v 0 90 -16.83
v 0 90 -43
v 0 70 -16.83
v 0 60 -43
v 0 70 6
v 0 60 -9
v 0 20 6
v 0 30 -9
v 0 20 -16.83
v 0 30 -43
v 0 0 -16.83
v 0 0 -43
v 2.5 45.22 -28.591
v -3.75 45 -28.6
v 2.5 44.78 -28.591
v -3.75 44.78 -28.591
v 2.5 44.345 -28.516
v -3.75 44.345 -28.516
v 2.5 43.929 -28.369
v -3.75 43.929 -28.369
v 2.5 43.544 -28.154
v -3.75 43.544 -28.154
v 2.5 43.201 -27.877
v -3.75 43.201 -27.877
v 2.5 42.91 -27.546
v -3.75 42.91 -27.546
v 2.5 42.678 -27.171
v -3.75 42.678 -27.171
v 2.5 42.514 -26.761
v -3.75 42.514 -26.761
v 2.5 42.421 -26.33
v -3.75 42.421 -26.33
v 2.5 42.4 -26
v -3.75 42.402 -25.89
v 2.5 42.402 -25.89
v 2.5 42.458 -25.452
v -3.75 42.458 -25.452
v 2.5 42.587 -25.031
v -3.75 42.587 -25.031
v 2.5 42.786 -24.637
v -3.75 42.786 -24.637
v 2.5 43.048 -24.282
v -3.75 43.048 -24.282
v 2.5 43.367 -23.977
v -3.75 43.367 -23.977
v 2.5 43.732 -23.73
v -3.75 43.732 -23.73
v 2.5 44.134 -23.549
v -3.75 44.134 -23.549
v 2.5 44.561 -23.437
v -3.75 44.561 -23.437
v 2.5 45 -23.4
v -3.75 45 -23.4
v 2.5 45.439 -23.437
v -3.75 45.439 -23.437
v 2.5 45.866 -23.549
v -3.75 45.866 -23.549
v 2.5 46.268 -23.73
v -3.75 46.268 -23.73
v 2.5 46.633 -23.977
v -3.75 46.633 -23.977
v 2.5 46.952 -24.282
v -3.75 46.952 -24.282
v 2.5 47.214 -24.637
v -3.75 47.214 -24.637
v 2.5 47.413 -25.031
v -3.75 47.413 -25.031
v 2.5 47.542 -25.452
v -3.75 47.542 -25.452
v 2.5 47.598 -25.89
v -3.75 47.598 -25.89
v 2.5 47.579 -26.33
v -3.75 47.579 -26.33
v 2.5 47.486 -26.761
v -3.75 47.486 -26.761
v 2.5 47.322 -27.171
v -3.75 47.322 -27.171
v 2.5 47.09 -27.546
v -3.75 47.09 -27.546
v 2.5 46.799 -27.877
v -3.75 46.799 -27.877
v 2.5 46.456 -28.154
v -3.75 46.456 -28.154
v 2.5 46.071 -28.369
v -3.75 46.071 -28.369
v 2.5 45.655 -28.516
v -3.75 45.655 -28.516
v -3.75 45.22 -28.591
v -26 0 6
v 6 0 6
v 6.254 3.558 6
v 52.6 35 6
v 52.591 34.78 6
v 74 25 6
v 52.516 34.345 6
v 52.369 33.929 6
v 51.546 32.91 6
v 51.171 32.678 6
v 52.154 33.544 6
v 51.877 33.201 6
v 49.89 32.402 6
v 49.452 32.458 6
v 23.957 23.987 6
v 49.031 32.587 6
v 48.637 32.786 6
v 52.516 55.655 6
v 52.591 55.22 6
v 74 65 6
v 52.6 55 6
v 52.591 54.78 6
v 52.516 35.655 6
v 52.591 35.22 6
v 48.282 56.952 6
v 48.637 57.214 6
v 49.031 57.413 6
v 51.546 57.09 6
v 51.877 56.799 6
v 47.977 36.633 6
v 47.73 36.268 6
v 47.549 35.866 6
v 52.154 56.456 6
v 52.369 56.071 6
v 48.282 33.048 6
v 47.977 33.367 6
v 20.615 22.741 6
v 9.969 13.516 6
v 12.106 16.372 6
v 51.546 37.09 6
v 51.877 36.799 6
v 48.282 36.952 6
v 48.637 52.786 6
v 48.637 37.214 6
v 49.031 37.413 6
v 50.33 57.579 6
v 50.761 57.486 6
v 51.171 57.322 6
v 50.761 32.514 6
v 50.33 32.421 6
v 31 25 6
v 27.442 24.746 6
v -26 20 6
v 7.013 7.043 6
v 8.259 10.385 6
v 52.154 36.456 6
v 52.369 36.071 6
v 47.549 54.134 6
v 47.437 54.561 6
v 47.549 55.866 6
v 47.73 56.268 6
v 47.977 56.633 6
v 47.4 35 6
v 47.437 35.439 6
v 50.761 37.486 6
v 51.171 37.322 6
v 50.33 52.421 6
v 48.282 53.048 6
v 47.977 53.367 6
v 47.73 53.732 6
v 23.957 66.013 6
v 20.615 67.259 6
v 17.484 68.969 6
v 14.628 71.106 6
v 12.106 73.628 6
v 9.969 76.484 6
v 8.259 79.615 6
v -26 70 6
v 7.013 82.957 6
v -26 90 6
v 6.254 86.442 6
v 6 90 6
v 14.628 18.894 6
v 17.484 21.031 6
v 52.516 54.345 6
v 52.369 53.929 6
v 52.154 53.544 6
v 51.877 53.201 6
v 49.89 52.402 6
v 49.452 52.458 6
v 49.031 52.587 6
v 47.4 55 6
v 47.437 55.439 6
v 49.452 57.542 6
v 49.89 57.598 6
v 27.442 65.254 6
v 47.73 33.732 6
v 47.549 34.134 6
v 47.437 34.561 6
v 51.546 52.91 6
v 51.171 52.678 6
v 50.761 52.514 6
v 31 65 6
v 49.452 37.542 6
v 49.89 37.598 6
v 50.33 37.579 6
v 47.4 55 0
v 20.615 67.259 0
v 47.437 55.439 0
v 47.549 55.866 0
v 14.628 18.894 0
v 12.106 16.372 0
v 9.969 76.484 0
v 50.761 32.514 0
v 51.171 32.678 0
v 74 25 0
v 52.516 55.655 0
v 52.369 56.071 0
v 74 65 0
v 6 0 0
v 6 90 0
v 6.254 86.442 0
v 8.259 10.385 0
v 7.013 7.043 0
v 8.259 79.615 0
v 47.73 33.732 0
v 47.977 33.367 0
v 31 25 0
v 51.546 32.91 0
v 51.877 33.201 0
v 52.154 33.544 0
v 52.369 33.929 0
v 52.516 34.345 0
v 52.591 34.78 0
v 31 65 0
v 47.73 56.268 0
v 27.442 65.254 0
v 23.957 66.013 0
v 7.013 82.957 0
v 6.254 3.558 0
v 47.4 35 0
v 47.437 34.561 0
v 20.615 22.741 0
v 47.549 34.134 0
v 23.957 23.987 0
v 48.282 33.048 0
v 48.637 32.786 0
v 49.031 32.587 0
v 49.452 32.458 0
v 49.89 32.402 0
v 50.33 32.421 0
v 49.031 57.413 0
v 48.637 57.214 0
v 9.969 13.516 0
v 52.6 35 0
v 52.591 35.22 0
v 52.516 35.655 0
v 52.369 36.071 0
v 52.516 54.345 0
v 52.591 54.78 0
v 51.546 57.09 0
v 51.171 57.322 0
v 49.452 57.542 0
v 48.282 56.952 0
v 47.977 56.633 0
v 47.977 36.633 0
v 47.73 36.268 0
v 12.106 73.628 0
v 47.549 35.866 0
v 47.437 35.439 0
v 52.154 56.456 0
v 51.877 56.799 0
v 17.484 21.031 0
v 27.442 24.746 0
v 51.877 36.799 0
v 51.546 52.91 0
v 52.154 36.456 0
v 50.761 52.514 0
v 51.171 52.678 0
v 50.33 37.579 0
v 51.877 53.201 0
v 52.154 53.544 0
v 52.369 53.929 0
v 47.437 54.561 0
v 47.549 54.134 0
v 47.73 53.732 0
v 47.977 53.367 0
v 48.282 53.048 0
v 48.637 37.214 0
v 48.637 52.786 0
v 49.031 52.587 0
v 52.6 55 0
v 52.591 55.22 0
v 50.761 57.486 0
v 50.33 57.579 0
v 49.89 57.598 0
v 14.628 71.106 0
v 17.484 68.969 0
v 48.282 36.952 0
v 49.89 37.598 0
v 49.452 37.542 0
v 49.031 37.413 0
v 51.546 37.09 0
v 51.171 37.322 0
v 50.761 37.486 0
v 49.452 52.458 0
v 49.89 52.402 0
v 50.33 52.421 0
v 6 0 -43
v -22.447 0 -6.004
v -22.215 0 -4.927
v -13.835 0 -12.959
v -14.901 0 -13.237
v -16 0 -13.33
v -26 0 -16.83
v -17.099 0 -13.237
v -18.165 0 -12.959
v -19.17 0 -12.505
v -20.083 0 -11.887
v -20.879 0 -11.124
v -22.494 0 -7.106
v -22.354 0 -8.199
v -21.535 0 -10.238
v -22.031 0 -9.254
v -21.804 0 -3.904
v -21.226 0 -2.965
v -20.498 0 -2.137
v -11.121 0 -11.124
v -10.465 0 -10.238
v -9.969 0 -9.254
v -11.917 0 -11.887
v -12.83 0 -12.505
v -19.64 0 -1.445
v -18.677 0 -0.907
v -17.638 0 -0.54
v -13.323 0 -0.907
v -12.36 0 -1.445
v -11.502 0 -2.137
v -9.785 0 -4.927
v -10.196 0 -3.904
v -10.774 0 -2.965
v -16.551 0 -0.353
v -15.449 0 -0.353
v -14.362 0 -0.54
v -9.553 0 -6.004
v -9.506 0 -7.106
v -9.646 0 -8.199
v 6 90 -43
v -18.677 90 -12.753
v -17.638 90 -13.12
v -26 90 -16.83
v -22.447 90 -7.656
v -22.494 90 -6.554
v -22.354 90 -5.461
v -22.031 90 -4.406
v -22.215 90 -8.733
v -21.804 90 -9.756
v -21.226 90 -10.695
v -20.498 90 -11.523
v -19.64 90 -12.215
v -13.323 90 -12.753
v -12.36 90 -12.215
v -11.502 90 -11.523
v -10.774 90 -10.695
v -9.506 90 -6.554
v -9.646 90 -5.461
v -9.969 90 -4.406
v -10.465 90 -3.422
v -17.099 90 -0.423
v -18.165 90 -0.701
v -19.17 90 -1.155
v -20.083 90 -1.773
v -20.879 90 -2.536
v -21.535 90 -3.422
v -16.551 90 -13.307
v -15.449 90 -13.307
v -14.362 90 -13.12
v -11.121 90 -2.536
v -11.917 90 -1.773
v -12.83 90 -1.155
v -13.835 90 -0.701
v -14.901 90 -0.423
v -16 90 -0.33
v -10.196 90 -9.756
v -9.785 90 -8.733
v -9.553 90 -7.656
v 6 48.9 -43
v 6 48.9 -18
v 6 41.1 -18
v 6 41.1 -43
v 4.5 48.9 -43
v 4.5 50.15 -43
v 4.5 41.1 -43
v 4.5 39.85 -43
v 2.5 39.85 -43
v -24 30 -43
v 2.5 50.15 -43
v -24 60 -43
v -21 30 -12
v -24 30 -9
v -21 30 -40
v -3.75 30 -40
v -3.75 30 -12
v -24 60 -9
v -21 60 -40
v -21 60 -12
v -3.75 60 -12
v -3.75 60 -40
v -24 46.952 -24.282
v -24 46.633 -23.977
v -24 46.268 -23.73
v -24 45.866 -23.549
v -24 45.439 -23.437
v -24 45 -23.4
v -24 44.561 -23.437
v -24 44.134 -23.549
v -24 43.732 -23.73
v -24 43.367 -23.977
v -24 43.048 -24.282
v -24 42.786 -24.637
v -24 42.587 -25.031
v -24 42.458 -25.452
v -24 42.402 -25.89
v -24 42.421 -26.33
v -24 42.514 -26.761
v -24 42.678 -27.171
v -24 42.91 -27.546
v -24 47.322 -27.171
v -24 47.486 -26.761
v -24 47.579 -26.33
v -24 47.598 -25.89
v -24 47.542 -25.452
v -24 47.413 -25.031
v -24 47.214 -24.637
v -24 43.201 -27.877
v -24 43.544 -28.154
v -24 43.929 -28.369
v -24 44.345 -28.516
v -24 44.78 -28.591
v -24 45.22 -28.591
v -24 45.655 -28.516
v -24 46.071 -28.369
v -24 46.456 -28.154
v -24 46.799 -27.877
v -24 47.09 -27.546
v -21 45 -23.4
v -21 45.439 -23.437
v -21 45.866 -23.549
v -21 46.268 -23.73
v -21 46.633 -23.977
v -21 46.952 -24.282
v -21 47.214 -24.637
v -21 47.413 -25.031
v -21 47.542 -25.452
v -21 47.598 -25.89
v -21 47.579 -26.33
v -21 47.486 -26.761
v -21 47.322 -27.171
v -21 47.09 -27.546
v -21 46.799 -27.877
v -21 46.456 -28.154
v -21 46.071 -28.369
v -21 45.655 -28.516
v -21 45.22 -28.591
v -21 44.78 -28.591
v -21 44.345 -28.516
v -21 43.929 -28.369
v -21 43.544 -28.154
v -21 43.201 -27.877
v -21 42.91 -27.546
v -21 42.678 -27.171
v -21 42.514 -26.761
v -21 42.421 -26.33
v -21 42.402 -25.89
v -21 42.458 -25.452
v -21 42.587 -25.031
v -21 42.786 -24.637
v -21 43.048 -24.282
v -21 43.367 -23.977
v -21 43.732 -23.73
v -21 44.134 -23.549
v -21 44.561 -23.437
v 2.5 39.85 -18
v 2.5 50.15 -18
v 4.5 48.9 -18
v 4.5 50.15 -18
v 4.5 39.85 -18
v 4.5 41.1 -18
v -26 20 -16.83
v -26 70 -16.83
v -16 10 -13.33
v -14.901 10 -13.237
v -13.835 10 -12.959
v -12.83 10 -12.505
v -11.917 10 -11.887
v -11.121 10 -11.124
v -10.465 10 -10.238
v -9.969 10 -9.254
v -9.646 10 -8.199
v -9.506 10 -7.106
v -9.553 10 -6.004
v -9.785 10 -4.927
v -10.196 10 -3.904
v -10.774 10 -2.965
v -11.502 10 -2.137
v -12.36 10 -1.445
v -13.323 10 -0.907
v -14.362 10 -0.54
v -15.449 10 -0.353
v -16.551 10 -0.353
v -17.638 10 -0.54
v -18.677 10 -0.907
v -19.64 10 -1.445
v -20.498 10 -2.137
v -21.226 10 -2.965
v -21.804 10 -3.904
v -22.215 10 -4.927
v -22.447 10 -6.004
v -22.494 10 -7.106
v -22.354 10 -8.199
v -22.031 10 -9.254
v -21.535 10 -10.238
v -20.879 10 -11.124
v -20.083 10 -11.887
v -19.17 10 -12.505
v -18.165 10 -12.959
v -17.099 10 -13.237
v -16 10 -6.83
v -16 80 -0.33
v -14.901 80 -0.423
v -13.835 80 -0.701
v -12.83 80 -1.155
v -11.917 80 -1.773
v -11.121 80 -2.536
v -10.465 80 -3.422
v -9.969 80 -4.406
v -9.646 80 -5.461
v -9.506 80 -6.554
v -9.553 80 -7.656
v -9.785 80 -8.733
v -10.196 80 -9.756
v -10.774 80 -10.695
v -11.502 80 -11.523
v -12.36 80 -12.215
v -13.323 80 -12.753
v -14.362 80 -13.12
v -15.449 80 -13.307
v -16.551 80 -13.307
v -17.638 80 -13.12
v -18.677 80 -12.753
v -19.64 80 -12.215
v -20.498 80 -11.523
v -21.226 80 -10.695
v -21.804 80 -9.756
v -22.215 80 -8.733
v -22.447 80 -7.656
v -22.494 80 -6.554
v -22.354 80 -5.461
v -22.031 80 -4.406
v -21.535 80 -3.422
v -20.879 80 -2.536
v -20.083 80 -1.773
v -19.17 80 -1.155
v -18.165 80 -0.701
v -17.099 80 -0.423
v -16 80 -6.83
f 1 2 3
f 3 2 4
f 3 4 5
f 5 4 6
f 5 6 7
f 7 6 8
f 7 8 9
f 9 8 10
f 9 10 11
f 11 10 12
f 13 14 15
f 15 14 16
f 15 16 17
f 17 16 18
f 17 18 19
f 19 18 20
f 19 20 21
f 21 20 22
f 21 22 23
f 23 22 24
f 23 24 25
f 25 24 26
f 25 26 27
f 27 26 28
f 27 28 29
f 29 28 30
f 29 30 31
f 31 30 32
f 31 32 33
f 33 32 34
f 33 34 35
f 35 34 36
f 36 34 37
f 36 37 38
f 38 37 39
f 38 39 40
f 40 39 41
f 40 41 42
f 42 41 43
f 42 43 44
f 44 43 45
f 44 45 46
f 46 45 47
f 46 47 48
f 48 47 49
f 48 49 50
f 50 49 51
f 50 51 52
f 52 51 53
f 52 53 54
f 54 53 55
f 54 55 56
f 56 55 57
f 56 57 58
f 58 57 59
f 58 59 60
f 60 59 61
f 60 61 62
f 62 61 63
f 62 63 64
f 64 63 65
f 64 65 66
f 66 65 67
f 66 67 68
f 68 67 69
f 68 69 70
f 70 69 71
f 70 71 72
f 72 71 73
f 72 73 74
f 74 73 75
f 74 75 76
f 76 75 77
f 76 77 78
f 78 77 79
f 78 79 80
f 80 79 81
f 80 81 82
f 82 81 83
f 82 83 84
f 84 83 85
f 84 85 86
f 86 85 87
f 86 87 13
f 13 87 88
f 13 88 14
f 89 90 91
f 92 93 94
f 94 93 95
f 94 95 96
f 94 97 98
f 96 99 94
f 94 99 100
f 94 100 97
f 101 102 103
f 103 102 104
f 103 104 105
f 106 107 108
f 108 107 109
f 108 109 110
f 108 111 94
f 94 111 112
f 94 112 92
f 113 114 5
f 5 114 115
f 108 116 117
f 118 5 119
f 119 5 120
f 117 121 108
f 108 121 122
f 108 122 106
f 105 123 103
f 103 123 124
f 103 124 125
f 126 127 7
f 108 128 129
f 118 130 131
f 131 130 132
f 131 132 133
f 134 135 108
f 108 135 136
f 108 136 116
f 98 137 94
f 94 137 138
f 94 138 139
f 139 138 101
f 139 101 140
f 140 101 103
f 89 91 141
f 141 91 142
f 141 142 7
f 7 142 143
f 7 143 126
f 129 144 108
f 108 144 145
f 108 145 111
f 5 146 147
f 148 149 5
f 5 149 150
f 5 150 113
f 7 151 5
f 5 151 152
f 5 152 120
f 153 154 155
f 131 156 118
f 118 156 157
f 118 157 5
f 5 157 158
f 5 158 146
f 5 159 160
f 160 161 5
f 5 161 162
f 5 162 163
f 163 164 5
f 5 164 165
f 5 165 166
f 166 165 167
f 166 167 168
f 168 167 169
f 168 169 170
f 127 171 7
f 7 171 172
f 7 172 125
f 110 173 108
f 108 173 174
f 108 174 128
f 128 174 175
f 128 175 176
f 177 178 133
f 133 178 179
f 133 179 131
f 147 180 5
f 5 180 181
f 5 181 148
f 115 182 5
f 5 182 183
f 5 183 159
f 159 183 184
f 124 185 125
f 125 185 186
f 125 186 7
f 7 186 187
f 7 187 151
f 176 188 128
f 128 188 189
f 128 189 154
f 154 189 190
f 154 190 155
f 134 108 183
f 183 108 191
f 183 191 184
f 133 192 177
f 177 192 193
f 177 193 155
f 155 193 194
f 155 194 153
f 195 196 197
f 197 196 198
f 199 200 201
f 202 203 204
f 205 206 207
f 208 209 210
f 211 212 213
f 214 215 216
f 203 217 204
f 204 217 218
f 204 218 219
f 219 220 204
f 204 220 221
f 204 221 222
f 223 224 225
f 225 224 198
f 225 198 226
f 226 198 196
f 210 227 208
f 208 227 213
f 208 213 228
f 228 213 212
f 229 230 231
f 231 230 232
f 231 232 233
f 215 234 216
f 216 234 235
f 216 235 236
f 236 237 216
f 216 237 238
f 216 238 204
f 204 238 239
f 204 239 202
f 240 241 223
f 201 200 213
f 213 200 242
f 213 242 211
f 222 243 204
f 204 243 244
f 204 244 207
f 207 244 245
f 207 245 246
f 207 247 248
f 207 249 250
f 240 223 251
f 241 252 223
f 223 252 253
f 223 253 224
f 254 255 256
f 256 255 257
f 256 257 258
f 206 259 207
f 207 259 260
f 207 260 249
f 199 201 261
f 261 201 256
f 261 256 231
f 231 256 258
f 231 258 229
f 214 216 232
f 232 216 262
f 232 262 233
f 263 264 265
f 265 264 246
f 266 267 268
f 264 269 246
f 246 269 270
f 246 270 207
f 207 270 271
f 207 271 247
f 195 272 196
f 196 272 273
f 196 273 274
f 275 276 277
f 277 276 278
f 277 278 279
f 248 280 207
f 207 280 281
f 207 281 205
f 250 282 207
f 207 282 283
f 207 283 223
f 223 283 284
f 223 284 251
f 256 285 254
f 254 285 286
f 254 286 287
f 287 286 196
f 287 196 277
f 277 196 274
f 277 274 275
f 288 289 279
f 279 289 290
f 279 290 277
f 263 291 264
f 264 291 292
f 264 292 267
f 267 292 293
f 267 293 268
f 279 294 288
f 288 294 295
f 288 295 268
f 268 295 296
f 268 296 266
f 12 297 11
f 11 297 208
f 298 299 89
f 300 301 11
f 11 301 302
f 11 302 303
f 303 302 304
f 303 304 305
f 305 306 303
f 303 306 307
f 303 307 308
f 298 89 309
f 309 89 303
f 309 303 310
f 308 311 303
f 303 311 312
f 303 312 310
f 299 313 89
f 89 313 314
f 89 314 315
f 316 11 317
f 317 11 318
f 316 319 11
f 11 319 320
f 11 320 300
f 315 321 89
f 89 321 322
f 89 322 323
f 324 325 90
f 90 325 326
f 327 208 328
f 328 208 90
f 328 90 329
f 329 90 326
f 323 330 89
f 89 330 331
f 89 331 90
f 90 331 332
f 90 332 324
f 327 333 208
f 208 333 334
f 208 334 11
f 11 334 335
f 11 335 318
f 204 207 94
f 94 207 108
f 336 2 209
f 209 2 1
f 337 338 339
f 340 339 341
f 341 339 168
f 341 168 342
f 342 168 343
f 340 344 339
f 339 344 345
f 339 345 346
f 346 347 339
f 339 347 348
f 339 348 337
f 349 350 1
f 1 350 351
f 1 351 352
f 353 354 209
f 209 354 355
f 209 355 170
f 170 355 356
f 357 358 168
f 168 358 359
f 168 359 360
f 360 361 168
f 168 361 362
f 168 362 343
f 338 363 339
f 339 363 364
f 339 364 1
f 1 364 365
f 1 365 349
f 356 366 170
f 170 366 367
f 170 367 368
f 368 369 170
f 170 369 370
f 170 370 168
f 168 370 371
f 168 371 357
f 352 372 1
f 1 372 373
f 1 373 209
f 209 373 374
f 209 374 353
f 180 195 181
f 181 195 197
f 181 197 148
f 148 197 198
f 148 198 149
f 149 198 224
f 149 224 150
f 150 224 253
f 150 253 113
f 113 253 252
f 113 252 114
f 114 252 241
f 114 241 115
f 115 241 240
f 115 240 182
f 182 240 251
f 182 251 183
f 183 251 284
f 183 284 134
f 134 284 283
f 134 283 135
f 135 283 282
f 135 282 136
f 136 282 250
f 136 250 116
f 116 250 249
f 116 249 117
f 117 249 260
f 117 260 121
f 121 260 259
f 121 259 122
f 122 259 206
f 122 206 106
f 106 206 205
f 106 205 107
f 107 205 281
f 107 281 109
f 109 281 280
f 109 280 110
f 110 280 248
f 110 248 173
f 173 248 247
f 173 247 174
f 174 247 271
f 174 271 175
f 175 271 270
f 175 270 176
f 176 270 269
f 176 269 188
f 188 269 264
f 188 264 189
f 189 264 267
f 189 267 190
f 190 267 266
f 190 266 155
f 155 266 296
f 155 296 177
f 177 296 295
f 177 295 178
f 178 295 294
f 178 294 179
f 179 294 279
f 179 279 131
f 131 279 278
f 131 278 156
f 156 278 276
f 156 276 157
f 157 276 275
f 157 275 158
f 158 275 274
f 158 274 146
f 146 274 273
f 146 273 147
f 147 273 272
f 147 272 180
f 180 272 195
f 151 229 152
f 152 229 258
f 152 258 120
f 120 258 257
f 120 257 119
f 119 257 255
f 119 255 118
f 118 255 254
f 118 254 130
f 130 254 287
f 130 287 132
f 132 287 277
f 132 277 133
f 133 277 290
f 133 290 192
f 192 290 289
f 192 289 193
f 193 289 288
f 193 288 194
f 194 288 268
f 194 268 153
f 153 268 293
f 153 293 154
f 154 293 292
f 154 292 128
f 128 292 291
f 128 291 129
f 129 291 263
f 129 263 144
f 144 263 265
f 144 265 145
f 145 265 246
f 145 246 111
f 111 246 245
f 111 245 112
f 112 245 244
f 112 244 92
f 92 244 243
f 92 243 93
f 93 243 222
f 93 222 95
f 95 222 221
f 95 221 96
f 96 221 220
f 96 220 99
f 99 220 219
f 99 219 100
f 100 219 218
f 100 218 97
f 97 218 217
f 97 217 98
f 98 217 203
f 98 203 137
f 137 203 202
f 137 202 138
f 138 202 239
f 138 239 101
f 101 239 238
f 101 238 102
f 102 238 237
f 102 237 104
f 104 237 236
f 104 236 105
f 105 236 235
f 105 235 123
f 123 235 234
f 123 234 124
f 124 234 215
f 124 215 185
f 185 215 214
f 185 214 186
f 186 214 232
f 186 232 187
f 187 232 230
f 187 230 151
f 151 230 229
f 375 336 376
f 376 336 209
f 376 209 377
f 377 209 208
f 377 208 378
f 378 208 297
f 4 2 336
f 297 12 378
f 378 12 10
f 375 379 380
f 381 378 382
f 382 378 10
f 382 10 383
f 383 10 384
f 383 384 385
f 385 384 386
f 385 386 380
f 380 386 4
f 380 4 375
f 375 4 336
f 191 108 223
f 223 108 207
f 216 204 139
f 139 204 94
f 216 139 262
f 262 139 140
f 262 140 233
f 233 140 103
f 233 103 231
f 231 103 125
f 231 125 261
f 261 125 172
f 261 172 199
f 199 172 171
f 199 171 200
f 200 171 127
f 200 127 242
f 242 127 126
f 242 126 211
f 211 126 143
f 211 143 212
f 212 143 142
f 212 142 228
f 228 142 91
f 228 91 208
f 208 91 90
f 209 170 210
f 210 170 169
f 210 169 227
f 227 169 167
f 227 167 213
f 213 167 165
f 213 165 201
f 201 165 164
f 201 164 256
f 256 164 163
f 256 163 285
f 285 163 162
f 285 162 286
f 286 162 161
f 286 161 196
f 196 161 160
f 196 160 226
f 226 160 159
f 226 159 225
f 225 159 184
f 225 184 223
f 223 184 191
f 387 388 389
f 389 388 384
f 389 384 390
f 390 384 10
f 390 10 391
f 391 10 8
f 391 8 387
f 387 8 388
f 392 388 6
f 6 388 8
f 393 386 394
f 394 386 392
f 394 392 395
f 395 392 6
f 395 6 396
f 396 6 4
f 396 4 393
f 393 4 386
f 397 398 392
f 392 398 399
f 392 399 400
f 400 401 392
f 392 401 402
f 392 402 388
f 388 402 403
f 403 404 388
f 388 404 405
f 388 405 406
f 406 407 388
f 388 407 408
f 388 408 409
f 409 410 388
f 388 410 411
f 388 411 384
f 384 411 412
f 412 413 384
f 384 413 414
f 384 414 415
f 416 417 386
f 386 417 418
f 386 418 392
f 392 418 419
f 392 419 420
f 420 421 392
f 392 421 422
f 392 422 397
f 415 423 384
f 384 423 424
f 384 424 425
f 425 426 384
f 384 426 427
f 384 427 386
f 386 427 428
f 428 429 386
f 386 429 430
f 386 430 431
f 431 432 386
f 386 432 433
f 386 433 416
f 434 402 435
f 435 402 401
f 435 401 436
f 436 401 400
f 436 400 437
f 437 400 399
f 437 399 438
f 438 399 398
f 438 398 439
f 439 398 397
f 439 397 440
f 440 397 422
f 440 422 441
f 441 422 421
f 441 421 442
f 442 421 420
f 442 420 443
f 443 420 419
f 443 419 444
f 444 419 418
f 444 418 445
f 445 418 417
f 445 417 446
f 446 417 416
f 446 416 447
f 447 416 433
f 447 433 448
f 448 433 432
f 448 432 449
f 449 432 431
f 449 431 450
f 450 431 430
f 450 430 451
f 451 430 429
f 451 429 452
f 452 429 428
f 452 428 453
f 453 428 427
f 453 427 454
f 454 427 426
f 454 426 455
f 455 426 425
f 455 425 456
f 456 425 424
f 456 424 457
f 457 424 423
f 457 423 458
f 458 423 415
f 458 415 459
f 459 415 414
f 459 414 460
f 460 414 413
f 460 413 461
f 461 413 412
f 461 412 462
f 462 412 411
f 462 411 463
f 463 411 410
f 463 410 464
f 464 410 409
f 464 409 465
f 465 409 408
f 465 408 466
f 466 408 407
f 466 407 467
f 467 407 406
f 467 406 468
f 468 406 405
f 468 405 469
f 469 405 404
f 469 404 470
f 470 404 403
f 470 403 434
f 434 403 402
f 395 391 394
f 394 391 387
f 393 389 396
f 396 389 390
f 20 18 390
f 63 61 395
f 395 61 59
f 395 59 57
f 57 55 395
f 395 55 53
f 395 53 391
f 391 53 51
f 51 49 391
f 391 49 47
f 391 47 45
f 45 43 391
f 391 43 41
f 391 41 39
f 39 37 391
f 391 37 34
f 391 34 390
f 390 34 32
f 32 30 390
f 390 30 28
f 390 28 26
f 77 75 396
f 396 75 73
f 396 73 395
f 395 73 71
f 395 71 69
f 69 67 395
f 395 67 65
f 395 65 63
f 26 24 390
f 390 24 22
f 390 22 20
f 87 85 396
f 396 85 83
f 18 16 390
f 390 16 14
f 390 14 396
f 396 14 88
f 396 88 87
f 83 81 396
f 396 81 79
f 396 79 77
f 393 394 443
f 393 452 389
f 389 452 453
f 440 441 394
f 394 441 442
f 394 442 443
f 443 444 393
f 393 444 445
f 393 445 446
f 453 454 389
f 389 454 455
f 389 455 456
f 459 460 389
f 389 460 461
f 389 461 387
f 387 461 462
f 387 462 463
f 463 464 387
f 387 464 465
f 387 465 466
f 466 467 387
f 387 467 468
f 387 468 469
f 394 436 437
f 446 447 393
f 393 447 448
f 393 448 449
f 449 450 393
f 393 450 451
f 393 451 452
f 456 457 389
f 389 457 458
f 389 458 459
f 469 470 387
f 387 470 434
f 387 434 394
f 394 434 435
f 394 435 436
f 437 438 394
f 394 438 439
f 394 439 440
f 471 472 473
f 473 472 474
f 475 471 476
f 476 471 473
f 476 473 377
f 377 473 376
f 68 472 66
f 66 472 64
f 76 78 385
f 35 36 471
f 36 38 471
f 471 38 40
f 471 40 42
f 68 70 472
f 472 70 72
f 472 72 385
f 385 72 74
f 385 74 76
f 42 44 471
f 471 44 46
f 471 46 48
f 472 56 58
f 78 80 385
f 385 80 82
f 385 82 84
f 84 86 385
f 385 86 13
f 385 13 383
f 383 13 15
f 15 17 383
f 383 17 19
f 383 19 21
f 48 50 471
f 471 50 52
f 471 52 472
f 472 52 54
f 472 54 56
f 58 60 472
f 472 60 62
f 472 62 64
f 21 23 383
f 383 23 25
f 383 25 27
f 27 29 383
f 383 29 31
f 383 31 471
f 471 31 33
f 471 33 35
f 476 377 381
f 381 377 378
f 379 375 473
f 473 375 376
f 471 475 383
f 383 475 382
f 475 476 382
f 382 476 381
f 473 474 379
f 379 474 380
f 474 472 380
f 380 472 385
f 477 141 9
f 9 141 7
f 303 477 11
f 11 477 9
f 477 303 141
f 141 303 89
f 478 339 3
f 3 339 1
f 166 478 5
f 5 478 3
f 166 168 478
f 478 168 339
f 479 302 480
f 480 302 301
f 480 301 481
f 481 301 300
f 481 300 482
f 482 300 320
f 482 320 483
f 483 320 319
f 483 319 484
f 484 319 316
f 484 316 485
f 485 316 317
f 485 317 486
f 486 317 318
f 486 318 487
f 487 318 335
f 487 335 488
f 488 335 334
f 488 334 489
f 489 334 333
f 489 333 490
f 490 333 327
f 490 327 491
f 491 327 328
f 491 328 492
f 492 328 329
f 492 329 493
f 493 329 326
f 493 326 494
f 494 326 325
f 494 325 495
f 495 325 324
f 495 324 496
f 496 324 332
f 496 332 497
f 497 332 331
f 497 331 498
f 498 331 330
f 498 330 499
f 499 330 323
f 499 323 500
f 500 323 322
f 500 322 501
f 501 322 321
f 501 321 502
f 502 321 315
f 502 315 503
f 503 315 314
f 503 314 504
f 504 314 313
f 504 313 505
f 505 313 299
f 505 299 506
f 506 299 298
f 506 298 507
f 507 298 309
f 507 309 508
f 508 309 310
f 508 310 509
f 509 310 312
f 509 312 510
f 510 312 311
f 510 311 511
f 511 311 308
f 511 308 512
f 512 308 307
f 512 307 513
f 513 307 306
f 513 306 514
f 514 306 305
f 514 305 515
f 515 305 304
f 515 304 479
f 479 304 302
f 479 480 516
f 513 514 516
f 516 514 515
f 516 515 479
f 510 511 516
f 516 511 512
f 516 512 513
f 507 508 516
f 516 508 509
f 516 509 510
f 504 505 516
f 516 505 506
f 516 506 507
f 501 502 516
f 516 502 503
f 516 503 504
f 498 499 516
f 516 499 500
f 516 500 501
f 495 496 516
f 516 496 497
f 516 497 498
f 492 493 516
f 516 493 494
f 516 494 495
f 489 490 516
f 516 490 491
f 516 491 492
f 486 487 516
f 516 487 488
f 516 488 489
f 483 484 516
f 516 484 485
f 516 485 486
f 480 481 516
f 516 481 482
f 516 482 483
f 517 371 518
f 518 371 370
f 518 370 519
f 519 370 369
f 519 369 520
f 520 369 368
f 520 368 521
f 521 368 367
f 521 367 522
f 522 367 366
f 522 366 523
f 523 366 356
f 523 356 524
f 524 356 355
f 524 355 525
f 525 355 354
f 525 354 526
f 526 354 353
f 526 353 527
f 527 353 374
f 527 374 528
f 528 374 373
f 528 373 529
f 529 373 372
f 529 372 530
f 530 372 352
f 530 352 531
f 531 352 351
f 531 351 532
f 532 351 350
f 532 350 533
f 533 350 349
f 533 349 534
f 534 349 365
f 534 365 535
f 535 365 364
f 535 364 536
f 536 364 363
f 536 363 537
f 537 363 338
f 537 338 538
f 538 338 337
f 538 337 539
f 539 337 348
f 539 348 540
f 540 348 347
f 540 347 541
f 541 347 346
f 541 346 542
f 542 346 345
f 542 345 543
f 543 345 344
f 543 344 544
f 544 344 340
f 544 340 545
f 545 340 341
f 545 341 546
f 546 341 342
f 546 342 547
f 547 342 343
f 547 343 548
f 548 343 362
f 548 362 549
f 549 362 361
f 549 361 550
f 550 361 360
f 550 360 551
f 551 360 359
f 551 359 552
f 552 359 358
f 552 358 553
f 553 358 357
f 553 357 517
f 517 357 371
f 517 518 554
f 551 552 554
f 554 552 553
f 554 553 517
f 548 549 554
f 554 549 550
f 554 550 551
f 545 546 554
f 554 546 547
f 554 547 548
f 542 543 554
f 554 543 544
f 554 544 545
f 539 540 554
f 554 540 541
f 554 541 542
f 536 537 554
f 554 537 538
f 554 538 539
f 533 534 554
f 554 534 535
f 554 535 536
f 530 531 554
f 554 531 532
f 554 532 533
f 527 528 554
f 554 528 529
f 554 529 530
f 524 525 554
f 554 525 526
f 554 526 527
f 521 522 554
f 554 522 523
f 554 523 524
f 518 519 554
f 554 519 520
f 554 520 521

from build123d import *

# Parameters (mm, degrees)
SKETCH1_W               = 74
SKETCH1_H               = 90
SKETCH1_R               = 2.6
BOSS_EXTRUDE1_DEPTH     = 6
SKETCH2_W               = 6
SKETCH2_H               = 90
BOSS_EXTRUDE2_DEPTH     = 43
SKETCH4_W               = 68
SKETCH4_H               = 25
CUT_EXTRUDE3_DEPTH      = 6
FILLET2_R               = 25
SKETCH5_W               = 34
SKETCH5_H               = 30
BOSS_EXTRUDE3_DEPTH     = 24
CUT_EXTRUDE1_DEPTH      = 125.197423484
CUT_EXTRUDE1_DEPTH_BACK = 125.197423484
SKETCH3_R               = 2.6
SKETCH6_W               = 17.25
SKETCH6_H               = 28
CUT_EXTRUDE4_DEPTH      = 105.522724802
CUT_EXTRUDE5_DEPTH      = 25
SKETCH8_W               = 22.83
SKETCH8_H               = 20
BOSS_EXTRUDE4_DEPTH     = 26
SKETCH9_R               = 6.5
CUT_EXTRUDE6_DEPTH      = 10
CUT_EXTRUDE7_START      = -10
SKETCH10_R              = 6.5
CUT_EXTRUDE7_DEPTH      = 10


with BuildPart() as part:
    # Sketch1 → Boss-Extrude1 (new body)
    with BuildSketch(Plane.XY):
        with Locations((37, 45)):
            Rectangle(SKETCH1_W, SKETCH1_H)
        with Locations((50, 55)):
            Circle(SKETCH1_R, mode=Mode.SUBTRACT)
        with Locations((50, 35)):
            Circle(SKETCH1_R, mode=Mode.SUBTRACT)
    extrude(amount=BOSS_EXTRUDE1_DEPTH)

    # Sketch2 → Boss-Extrude2 (add)
    with BuildSketch(Plane(origin=(0, 0, 0), x_dir=(-1, 0, 0), z_dir=(0, 0, -1))):
        with Locations((-3, 45)):
            Rectangle(SKETCH2_W, SKETCH2_H)
    extrude(amount=BOSS_EXTRUDE2_DEPTH)

    # Sketch4 → Cut-Extrude3 (cut)
    with BuildSketch(Plane(origin=(0, 0, 0), x_dir=(-1, 0, 0), z_dir=(0, 0, -1))):
        with Locations((-40, 77.5)):
            Rectangle(SKETCH4_W, SKETCH4_H)
        with Locations((-40, 12.5)):
            Rectangle(SKETCH4_W, SKETCH4_H)
    extrude(amount=-CUT_EXTRUDE3_DEPTH, mode=Mode.SUBTRACT)

    # Fillet2
    fillet2_edges = [part.edges().sort_by_distance(p)[0] for p in [
        (6, 65, 3),
        (6, 25, 3),
    ]]
    fillet(fillet2_edges, radius=FILLET2_R - 0.0001)  # a hair under: the kernel refuses the full size

    # Sketch5 → Boss-Extrude3 (add)
    with BuildSketch(Plane.ZY):
        with Locations((-26, 45)):
            Rectangle(SKETCH5_W, SKETCH5_H)
    extrude(amount=BOSS_EXTRUDE3_DEPTH)

    # Sketch3 → Cut-Extrude1 (cut, two sides: drawn at the far end of the back side and taken through both)
    with BuildSketch(Plane.ZY.offset(-CUT_EXTRUDE1_DEPTH_BACK)):
        with Locations((-26, 45)):
            Circle(SKETCH3_R)
    extrude(amount=CUT_EXTRUDE1_DEPTH + CUT_EXTRUDE1_DEPTH_BACK, mode=Mode.SUBTRACT)

    # Sketch6 → Cut-Extrude4 (cut, through all)
    with BuildSketch(Plane(origin=(0, 60, 0), x_dir=(1, 0, 0), z_dir=(0, 1, 0))):
        with Locations((-12.375, 26)):
            Rectangle(SKETCH6_W, SKETCH6_H)
    extrude(amount=-CUT_EXTRUDE4_DEPTH, mode=Mode.SUBTRACT)

    # Sketch7 → Cut-Extrude5 (cut)
    with BuildSketch(Plane(origin=(0, 0, -43), x_dir=(-1, 0, 0), z_dir=(0, 0, -1))):
        Polygon((-2.5, 50.15), (-4.5, 50.15), (-4.5, 48.9), (-7.5, 48.9), (-7.5, 41.1), (-4.5, 41.1), (-4.5, 39.85), (-2.5, 39.85), align=None)
    extrude(amount=-CUT_EXTRUDE5_DEPTH, mode=Mode.SUBTRACT)

    # Sketch8 → Boss-Extrude4 (add)
    with BuildSketch(Plane.ZY):
        with Locations((-5.415, 10)):
            Rectangle(SKETCH8_W, SKETCH8_H)
        with Locations((-5.415, 80)):
            Rectangle(SKETCH8_W, SKETCH8_H)
    extrude(amount=BOSS_EXTRUDE4_DEPTH)

    # Sketch9 → Cut-Extrude6 (cut)
    with BuildSketch(Plane.XZ):
        with Locations(Location((-16, -6.83, 0), (0, 0, 270))):
            Circle(SKETCH9_R)
    extrude(amount=-CUT_EXTRUDE6_DEPTH, mode=Mode.SUBTRACT)

    # Sketch10 → Cut-Extrude7 (cut)
    with BuildSketch(Plane(origin=(0, 90, 0), x_dir=(1, 0, 0), z_dir=(0, 1, 0)).offset(CUT_EXTRUDE7_START)):
        with Locations(Location((-16, 6.83, 0), (0, 0, 90))):
            Circle(SKETCH10_R)
    extrude(amount=CUT_EXTRUDE7_DEPTH, mode=Mode.SUBTRACT)


solid = part.part
